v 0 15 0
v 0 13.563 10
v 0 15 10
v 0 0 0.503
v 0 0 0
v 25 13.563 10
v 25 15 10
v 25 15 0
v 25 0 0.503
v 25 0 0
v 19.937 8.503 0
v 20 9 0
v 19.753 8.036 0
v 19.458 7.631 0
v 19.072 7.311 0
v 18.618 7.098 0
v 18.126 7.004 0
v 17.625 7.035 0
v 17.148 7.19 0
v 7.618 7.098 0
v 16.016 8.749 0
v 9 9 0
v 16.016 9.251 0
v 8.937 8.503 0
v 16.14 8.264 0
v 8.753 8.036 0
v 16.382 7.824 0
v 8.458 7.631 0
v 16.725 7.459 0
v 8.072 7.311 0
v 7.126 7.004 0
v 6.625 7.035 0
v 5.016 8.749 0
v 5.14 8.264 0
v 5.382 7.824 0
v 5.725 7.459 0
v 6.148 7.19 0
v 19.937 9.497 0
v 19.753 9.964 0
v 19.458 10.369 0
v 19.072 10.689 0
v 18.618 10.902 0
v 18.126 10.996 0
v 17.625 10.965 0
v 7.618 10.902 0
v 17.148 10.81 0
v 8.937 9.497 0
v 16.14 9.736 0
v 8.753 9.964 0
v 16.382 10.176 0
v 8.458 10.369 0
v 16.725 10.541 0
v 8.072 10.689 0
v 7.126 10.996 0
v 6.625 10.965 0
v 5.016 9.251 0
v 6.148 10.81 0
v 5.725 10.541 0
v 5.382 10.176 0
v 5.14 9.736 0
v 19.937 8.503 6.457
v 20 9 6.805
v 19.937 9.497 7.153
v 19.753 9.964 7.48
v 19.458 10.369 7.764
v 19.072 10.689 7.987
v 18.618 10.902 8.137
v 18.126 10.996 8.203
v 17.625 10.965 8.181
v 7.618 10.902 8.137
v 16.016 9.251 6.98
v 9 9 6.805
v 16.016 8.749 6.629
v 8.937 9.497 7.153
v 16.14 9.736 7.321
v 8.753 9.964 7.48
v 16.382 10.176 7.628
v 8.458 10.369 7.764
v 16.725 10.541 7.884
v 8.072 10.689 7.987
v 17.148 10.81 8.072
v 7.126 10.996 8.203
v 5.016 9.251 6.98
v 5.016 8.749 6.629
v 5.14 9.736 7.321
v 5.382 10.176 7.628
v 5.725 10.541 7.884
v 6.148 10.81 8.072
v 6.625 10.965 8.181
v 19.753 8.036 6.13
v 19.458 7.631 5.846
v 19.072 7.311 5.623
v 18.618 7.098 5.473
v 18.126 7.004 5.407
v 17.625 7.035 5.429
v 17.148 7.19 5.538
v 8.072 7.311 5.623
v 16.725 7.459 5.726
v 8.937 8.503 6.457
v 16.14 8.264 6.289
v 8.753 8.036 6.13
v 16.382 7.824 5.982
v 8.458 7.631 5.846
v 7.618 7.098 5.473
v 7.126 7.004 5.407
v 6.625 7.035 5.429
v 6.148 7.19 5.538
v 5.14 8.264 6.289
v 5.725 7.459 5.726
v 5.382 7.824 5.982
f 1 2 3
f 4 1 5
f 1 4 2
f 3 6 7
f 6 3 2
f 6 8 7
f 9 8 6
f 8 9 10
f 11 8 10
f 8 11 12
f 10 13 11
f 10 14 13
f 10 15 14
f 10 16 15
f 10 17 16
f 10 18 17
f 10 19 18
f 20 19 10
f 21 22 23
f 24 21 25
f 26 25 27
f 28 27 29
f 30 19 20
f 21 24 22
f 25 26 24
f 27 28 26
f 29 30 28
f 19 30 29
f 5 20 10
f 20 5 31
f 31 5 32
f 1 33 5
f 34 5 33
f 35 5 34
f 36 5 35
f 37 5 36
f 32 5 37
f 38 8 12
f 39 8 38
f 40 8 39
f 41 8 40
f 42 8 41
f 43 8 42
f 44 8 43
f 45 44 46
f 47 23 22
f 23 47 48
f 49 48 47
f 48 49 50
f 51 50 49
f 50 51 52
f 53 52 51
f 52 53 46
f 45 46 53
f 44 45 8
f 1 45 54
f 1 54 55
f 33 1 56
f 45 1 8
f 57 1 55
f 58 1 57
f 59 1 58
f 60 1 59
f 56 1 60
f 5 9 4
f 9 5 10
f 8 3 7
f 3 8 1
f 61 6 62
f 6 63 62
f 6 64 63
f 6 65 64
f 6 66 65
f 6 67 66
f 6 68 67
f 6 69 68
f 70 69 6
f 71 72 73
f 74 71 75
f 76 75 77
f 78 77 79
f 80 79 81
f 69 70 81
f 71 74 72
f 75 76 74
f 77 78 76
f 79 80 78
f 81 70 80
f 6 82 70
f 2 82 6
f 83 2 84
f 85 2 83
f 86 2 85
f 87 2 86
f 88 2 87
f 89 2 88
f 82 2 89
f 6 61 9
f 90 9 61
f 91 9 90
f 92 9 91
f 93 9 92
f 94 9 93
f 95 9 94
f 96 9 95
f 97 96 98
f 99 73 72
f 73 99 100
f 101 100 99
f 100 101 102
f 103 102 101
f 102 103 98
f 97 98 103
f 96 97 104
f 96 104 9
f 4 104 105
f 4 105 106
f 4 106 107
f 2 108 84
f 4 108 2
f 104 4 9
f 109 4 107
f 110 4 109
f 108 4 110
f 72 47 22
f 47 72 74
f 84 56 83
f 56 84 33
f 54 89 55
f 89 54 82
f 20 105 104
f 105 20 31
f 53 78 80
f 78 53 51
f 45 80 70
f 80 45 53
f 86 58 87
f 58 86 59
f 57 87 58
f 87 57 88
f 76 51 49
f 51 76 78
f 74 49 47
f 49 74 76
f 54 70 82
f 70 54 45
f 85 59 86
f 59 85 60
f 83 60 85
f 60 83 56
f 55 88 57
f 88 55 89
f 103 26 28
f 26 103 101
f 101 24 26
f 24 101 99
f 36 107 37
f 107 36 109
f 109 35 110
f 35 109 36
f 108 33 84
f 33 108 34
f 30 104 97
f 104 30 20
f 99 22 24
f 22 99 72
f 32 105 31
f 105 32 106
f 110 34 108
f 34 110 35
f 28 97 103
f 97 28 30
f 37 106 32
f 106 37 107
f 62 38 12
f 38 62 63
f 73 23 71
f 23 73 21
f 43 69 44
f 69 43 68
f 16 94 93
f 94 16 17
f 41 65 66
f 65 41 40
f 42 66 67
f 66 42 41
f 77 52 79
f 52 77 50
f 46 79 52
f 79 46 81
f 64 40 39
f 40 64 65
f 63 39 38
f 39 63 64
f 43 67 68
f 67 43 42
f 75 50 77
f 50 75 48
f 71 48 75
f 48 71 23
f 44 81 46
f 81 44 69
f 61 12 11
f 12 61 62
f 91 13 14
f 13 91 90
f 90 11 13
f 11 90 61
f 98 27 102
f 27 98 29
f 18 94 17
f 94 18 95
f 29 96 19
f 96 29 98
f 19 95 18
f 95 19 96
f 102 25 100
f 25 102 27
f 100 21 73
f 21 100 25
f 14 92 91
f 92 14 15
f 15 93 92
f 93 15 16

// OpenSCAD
bracket_thickness = 2;
tube_length = bracket_thickness * 4;
tube_outer_radius = 9;
tube_thickness = 2;
tube_inner_radius = tube_outer_radius - tube_thickness;
$fn=25;

difference() {
    cube(size=[25, 15, 10]);
    translate([-1,-15,-10])
     rotate([35,0,0])
      #cube(size=[27,50,30]);
    
    translate([7,9,-1])
     #cylinder(r=2, h=12);
    
    translate([25-7,9,-1])
     #cylinder(r=2, h=12);
    
}
